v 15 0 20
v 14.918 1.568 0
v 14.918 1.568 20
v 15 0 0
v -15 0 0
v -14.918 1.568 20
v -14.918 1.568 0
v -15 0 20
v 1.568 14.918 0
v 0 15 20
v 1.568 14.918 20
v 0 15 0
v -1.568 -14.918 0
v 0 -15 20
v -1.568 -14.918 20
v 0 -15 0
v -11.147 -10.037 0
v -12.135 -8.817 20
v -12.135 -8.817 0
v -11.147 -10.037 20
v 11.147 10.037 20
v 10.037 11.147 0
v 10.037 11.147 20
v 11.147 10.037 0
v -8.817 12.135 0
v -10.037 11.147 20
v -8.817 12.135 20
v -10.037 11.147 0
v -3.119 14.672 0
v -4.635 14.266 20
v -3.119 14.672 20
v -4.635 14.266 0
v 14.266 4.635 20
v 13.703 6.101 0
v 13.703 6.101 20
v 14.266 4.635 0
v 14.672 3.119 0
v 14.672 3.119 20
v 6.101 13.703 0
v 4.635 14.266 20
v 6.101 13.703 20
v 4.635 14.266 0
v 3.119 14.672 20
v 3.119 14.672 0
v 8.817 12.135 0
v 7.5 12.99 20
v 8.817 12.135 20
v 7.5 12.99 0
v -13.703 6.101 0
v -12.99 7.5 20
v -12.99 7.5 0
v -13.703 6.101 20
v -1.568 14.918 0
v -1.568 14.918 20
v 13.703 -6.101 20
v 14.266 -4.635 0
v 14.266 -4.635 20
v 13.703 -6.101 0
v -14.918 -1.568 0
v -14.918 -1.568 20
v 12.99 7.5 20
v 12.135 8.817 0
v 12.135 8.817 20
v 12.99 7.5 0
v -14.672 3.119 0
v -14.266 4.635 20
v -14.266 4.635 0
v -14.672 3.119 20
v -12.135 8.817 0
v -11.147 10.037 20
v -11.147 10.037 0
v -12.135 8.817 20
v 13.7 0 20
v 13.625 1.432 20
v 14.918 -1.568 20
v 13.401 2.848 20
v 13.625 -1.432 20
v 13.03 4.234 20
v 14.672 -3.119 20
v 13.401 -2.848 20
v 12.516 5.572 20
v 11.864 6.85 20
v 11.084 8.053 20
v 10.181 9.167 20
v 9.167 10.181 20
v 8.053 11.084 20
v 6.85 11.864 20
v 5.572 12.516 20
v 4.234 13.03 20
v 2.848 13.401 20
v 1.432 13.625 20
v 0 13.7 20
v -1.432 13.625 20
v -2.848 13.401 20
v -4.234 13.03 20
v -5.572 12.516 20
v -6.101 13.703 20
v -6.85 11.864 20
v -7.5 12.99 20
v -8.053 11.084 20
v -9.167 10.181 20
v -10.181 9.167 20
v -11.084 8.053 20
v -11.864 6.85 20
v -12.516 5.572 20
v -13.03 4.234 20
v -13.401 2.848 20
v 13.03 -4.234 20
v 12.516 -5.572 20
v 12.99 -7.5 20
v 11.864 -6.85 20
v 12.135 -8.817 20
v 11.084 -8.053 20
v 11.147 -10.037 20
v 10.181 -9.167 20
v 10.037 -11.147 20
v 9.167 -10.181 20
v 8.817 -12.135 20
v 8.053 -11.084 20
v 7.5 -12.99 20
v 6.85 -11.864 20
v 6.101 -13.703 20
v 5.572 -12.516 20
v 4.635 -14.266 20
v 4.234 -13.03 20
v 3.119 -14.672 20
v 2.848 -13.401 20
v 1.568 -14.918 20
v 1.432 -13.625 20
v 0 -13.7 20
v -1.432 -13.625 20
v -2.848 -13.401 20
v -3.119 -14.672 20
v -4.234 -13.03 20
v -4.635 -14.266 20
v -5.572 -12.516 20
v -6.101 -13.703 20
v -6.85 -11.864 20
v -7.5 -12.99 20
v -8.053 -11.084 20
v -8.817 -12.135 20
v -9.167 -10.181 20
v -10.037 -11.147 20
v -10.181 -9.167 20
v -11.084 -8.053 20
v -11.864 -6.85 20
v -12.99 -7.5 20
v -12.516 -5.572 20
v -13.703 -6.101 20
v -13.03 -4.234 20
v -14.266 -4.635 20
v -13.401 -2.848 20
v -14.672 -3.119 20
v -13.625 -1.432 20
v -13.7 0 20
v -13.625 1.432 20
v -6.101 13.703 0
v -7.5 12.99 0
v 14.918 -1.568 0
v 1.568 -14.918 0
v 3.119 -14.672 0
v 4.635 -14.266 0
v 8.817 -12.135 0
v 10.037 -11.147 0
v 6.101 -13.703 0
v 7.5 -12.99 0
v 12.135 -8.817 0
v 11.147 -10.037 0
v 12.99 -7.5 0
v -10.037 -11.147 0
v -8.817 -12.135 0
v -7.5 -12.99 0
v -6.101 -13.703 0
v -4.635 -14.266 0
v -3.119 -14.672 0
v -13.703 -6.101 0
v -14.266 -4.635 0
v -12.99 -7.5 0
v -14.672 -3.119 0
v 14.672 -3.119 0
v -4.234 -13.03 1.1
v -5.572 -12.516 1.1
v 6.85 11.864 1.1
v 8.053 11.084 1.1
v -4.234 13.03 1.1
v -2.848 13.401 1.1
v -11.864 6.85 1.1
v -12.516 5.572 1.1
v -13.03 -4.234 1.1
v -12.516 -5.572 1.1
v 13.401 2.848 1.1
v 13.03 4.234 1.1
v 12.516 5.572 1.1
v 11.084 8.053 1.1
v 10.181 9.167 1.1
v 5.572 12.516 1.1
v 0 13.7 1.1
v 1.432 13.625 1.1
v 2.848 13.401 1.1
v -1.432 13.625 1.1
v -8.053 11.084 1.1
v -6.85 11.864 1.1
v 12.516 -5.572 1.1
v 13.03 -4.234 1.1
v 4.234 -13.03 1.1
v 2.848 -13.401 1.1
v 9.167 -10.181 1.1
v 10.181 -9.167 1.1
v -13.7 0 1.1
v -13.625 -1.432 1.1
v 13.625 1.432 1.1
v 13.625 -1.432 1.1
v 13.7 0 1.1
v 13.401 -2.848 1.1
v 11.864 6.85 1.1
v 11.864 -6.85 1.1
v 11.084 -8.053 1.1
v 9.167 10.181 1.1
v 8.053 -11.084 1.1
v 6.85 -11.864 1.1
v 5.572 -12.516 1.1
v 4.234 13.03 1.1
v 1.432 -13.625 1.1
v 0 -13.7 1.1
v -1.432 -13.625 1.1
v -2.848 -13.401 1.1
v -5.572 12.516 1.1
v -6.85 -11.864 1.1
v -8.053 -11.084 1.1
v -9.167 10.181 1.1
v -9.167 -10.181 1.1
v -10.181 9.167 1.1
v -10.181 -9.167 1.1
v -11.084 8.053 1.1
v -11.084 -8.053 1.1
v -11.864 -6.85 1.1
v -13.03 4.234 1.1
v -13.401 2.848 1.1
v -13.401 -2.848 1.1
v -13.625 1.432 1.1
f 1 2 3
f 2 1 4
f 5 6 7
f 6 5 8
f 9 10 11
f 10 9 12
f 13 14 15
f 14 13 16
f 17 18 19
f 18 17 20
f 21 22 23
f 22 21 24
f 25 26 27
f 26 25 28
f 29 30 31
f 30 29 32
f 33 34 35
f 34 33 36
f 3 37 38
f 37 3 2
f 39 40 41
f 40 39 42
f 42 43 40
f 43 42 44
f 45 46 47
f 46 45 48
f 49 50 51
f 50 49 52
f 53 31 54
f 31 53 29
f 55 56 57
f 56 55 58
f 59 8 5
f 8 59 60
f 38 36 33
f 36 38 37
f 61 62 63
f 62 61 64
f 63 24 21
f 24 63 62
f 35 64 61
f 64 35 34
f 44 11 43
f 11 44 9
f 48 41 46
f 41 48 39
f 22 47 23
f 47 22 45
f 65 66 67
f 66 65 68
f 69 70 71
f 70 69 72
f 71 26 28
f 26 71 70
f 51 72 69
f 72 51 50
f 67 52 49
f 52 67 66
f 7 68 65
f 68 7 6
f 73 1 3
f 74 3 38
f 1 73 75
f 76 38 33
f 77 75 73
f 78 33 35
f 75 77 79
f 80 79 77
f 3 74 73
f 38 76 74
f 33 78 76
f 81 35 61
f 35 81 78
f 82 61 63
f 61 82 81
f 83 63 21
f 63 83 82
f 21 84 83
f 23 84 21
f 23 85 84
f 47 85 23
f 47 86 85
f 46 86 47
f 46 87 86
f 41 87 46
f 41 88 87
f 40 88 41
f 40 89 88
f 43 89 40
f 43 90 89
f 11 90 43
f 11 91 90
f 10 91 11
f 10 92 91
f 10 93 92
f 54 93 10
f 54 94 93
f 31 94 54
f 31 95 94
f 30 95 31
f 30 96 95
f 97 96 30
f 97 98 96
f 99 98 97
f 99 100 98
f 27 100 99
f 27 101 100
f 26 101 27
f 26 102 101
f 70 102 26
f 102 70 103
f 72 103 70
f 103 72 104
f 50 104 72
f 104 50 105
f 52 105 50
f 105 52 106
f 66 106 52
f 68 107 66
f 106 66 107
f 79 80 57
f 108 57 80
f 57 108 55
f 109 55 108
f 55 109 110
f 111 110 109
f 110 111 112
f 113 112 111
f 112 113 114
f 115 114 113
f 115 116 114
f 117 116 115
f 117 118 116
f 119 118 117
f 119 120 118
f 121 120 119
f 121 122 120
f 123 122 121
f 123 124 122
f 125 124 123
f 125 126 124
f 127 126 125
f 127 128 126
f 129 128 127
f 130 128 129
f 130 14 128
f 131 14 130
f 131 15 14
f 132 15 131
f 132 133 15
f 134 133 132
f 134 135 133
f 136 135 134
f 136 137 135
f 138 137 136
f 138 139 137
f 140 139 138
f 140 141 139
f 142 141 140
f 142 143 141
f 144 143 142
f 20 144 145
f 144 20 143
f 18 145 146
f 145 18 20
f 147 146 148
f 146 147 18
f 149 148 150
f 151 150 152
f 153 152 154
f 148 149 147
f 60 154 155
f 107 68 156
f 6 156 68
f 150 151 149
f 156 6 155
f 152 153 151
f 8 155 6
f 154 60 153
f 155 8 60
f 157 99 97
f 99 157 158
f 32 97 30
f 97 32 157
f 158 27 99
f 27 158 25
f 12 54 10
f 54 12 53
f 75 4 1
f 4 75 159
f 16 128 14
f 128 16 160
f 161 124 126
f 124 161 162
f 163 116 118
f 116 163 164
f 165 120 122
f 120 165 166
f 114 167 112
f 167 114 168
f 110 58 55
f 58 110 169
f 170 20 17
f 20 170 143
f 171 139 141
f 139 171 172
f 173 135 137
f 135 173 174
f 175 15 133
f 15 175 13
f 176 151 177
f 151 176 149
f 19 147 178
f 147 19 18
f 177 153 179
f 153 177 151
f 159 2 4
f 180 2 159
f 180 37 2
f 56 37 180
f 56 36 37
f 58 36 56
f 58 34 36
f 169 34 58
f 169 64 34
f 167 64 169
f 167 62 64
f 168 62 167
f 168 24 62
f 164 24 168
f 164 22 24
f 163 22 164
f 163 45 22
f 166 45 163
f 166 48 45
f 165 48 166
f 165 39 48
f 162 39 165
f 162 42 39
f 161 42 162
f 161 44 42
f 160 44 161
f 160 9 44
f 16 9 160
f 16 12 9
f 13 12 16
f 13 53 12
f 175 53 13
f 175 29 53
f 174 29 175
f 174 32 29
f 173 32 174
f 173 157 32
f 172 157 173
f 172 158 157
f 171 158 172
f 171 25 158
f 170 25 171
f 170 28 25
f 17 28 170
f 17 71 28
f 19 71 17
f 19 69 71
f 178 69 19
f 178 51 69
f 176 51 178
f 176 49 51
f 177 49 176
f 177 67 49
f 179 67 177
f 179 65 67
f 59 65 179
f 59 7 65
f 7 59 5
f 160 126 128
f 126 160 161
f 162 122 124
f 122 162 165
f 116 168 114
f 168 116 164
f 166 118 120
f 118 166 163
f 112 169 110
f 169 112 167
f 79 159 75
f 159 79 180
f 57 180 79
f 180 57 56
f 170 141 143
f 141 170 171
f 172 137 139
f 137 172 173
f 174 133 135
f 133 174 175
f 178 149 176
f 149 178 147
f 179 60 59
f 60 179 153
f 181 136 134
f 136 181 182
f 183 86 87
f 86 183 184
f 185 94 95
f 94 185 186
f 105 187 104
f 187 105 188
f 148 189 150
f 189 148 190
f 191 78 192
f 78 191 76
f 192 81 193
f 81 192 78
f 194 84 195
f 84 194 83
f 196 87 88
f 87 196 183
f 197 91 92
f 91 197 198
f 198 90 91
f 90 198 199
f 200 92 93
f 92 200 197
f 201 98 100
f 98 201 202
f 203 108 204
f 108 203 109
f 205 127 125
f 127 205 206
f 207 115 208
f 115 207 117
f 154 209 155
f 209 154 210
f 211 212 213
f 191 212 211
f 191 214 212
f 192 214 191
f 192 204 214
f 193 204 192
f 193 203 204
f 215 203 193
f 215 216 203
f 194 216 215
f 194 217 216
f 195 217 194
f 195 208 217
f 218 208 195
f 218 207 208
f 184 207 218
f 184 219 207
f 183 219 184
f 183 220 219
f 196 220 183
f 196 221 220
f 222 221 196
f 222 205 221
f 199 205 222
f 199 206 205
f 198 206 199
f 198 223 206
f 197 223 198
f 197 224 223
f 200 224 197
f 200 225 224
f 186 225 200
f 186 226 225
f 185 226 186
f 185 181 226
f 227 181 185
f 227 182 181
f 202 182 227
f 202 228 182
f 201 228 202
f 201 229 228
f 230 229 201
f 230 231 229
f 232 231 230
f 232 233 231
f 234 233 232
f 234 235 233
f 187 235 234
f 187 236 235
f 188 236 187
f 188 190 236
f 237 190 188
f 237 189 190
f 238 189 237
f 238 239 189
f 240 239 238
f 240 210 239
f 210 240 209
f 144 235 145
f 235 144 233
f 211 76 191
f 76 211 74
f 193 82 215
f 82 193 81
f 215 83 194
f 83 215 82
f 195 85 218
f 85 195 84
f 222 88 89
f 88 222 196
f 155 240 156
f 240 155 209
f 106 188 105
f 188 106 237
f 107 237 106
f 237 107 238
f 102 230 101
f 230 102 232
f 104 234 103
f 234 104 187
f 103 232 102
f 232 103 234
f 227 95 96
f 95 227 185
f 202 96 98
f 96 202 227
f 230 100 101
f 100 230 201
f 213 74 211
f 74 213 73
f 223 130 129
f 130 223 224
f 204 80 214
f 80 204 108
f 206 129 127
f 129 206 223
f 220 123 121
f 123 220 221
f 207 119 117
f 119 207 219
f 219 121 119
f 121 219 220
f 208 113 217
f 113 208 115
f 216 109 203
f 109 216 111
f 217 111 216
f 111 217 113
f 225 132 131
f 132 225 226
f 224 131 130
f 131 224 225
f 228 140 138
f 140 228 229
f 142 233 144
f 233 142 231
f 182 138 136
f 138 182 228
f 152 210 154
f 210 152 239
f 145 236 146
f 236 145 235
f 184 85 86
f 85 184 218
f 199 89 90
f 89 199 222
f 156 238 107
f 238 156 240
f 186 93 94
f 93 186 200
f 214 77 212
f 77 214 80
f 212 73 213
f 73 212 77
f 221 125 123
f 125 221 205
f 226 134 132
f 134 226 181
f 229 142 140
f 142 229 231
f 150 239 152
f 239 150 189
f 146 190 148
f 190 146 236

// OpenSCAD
difference(){
    cylinder(20,15,15,$fn=60);
    translate([0,0,1.1])
        cylinder(20,13.7,13.7,$fn=60);
}

//translate([30,0,0])
//difference(){
//    cube([30,30,20]);
//    translate([1.3,1.3,1.1])
//    cube([27.6,27.6,20]);
//}
